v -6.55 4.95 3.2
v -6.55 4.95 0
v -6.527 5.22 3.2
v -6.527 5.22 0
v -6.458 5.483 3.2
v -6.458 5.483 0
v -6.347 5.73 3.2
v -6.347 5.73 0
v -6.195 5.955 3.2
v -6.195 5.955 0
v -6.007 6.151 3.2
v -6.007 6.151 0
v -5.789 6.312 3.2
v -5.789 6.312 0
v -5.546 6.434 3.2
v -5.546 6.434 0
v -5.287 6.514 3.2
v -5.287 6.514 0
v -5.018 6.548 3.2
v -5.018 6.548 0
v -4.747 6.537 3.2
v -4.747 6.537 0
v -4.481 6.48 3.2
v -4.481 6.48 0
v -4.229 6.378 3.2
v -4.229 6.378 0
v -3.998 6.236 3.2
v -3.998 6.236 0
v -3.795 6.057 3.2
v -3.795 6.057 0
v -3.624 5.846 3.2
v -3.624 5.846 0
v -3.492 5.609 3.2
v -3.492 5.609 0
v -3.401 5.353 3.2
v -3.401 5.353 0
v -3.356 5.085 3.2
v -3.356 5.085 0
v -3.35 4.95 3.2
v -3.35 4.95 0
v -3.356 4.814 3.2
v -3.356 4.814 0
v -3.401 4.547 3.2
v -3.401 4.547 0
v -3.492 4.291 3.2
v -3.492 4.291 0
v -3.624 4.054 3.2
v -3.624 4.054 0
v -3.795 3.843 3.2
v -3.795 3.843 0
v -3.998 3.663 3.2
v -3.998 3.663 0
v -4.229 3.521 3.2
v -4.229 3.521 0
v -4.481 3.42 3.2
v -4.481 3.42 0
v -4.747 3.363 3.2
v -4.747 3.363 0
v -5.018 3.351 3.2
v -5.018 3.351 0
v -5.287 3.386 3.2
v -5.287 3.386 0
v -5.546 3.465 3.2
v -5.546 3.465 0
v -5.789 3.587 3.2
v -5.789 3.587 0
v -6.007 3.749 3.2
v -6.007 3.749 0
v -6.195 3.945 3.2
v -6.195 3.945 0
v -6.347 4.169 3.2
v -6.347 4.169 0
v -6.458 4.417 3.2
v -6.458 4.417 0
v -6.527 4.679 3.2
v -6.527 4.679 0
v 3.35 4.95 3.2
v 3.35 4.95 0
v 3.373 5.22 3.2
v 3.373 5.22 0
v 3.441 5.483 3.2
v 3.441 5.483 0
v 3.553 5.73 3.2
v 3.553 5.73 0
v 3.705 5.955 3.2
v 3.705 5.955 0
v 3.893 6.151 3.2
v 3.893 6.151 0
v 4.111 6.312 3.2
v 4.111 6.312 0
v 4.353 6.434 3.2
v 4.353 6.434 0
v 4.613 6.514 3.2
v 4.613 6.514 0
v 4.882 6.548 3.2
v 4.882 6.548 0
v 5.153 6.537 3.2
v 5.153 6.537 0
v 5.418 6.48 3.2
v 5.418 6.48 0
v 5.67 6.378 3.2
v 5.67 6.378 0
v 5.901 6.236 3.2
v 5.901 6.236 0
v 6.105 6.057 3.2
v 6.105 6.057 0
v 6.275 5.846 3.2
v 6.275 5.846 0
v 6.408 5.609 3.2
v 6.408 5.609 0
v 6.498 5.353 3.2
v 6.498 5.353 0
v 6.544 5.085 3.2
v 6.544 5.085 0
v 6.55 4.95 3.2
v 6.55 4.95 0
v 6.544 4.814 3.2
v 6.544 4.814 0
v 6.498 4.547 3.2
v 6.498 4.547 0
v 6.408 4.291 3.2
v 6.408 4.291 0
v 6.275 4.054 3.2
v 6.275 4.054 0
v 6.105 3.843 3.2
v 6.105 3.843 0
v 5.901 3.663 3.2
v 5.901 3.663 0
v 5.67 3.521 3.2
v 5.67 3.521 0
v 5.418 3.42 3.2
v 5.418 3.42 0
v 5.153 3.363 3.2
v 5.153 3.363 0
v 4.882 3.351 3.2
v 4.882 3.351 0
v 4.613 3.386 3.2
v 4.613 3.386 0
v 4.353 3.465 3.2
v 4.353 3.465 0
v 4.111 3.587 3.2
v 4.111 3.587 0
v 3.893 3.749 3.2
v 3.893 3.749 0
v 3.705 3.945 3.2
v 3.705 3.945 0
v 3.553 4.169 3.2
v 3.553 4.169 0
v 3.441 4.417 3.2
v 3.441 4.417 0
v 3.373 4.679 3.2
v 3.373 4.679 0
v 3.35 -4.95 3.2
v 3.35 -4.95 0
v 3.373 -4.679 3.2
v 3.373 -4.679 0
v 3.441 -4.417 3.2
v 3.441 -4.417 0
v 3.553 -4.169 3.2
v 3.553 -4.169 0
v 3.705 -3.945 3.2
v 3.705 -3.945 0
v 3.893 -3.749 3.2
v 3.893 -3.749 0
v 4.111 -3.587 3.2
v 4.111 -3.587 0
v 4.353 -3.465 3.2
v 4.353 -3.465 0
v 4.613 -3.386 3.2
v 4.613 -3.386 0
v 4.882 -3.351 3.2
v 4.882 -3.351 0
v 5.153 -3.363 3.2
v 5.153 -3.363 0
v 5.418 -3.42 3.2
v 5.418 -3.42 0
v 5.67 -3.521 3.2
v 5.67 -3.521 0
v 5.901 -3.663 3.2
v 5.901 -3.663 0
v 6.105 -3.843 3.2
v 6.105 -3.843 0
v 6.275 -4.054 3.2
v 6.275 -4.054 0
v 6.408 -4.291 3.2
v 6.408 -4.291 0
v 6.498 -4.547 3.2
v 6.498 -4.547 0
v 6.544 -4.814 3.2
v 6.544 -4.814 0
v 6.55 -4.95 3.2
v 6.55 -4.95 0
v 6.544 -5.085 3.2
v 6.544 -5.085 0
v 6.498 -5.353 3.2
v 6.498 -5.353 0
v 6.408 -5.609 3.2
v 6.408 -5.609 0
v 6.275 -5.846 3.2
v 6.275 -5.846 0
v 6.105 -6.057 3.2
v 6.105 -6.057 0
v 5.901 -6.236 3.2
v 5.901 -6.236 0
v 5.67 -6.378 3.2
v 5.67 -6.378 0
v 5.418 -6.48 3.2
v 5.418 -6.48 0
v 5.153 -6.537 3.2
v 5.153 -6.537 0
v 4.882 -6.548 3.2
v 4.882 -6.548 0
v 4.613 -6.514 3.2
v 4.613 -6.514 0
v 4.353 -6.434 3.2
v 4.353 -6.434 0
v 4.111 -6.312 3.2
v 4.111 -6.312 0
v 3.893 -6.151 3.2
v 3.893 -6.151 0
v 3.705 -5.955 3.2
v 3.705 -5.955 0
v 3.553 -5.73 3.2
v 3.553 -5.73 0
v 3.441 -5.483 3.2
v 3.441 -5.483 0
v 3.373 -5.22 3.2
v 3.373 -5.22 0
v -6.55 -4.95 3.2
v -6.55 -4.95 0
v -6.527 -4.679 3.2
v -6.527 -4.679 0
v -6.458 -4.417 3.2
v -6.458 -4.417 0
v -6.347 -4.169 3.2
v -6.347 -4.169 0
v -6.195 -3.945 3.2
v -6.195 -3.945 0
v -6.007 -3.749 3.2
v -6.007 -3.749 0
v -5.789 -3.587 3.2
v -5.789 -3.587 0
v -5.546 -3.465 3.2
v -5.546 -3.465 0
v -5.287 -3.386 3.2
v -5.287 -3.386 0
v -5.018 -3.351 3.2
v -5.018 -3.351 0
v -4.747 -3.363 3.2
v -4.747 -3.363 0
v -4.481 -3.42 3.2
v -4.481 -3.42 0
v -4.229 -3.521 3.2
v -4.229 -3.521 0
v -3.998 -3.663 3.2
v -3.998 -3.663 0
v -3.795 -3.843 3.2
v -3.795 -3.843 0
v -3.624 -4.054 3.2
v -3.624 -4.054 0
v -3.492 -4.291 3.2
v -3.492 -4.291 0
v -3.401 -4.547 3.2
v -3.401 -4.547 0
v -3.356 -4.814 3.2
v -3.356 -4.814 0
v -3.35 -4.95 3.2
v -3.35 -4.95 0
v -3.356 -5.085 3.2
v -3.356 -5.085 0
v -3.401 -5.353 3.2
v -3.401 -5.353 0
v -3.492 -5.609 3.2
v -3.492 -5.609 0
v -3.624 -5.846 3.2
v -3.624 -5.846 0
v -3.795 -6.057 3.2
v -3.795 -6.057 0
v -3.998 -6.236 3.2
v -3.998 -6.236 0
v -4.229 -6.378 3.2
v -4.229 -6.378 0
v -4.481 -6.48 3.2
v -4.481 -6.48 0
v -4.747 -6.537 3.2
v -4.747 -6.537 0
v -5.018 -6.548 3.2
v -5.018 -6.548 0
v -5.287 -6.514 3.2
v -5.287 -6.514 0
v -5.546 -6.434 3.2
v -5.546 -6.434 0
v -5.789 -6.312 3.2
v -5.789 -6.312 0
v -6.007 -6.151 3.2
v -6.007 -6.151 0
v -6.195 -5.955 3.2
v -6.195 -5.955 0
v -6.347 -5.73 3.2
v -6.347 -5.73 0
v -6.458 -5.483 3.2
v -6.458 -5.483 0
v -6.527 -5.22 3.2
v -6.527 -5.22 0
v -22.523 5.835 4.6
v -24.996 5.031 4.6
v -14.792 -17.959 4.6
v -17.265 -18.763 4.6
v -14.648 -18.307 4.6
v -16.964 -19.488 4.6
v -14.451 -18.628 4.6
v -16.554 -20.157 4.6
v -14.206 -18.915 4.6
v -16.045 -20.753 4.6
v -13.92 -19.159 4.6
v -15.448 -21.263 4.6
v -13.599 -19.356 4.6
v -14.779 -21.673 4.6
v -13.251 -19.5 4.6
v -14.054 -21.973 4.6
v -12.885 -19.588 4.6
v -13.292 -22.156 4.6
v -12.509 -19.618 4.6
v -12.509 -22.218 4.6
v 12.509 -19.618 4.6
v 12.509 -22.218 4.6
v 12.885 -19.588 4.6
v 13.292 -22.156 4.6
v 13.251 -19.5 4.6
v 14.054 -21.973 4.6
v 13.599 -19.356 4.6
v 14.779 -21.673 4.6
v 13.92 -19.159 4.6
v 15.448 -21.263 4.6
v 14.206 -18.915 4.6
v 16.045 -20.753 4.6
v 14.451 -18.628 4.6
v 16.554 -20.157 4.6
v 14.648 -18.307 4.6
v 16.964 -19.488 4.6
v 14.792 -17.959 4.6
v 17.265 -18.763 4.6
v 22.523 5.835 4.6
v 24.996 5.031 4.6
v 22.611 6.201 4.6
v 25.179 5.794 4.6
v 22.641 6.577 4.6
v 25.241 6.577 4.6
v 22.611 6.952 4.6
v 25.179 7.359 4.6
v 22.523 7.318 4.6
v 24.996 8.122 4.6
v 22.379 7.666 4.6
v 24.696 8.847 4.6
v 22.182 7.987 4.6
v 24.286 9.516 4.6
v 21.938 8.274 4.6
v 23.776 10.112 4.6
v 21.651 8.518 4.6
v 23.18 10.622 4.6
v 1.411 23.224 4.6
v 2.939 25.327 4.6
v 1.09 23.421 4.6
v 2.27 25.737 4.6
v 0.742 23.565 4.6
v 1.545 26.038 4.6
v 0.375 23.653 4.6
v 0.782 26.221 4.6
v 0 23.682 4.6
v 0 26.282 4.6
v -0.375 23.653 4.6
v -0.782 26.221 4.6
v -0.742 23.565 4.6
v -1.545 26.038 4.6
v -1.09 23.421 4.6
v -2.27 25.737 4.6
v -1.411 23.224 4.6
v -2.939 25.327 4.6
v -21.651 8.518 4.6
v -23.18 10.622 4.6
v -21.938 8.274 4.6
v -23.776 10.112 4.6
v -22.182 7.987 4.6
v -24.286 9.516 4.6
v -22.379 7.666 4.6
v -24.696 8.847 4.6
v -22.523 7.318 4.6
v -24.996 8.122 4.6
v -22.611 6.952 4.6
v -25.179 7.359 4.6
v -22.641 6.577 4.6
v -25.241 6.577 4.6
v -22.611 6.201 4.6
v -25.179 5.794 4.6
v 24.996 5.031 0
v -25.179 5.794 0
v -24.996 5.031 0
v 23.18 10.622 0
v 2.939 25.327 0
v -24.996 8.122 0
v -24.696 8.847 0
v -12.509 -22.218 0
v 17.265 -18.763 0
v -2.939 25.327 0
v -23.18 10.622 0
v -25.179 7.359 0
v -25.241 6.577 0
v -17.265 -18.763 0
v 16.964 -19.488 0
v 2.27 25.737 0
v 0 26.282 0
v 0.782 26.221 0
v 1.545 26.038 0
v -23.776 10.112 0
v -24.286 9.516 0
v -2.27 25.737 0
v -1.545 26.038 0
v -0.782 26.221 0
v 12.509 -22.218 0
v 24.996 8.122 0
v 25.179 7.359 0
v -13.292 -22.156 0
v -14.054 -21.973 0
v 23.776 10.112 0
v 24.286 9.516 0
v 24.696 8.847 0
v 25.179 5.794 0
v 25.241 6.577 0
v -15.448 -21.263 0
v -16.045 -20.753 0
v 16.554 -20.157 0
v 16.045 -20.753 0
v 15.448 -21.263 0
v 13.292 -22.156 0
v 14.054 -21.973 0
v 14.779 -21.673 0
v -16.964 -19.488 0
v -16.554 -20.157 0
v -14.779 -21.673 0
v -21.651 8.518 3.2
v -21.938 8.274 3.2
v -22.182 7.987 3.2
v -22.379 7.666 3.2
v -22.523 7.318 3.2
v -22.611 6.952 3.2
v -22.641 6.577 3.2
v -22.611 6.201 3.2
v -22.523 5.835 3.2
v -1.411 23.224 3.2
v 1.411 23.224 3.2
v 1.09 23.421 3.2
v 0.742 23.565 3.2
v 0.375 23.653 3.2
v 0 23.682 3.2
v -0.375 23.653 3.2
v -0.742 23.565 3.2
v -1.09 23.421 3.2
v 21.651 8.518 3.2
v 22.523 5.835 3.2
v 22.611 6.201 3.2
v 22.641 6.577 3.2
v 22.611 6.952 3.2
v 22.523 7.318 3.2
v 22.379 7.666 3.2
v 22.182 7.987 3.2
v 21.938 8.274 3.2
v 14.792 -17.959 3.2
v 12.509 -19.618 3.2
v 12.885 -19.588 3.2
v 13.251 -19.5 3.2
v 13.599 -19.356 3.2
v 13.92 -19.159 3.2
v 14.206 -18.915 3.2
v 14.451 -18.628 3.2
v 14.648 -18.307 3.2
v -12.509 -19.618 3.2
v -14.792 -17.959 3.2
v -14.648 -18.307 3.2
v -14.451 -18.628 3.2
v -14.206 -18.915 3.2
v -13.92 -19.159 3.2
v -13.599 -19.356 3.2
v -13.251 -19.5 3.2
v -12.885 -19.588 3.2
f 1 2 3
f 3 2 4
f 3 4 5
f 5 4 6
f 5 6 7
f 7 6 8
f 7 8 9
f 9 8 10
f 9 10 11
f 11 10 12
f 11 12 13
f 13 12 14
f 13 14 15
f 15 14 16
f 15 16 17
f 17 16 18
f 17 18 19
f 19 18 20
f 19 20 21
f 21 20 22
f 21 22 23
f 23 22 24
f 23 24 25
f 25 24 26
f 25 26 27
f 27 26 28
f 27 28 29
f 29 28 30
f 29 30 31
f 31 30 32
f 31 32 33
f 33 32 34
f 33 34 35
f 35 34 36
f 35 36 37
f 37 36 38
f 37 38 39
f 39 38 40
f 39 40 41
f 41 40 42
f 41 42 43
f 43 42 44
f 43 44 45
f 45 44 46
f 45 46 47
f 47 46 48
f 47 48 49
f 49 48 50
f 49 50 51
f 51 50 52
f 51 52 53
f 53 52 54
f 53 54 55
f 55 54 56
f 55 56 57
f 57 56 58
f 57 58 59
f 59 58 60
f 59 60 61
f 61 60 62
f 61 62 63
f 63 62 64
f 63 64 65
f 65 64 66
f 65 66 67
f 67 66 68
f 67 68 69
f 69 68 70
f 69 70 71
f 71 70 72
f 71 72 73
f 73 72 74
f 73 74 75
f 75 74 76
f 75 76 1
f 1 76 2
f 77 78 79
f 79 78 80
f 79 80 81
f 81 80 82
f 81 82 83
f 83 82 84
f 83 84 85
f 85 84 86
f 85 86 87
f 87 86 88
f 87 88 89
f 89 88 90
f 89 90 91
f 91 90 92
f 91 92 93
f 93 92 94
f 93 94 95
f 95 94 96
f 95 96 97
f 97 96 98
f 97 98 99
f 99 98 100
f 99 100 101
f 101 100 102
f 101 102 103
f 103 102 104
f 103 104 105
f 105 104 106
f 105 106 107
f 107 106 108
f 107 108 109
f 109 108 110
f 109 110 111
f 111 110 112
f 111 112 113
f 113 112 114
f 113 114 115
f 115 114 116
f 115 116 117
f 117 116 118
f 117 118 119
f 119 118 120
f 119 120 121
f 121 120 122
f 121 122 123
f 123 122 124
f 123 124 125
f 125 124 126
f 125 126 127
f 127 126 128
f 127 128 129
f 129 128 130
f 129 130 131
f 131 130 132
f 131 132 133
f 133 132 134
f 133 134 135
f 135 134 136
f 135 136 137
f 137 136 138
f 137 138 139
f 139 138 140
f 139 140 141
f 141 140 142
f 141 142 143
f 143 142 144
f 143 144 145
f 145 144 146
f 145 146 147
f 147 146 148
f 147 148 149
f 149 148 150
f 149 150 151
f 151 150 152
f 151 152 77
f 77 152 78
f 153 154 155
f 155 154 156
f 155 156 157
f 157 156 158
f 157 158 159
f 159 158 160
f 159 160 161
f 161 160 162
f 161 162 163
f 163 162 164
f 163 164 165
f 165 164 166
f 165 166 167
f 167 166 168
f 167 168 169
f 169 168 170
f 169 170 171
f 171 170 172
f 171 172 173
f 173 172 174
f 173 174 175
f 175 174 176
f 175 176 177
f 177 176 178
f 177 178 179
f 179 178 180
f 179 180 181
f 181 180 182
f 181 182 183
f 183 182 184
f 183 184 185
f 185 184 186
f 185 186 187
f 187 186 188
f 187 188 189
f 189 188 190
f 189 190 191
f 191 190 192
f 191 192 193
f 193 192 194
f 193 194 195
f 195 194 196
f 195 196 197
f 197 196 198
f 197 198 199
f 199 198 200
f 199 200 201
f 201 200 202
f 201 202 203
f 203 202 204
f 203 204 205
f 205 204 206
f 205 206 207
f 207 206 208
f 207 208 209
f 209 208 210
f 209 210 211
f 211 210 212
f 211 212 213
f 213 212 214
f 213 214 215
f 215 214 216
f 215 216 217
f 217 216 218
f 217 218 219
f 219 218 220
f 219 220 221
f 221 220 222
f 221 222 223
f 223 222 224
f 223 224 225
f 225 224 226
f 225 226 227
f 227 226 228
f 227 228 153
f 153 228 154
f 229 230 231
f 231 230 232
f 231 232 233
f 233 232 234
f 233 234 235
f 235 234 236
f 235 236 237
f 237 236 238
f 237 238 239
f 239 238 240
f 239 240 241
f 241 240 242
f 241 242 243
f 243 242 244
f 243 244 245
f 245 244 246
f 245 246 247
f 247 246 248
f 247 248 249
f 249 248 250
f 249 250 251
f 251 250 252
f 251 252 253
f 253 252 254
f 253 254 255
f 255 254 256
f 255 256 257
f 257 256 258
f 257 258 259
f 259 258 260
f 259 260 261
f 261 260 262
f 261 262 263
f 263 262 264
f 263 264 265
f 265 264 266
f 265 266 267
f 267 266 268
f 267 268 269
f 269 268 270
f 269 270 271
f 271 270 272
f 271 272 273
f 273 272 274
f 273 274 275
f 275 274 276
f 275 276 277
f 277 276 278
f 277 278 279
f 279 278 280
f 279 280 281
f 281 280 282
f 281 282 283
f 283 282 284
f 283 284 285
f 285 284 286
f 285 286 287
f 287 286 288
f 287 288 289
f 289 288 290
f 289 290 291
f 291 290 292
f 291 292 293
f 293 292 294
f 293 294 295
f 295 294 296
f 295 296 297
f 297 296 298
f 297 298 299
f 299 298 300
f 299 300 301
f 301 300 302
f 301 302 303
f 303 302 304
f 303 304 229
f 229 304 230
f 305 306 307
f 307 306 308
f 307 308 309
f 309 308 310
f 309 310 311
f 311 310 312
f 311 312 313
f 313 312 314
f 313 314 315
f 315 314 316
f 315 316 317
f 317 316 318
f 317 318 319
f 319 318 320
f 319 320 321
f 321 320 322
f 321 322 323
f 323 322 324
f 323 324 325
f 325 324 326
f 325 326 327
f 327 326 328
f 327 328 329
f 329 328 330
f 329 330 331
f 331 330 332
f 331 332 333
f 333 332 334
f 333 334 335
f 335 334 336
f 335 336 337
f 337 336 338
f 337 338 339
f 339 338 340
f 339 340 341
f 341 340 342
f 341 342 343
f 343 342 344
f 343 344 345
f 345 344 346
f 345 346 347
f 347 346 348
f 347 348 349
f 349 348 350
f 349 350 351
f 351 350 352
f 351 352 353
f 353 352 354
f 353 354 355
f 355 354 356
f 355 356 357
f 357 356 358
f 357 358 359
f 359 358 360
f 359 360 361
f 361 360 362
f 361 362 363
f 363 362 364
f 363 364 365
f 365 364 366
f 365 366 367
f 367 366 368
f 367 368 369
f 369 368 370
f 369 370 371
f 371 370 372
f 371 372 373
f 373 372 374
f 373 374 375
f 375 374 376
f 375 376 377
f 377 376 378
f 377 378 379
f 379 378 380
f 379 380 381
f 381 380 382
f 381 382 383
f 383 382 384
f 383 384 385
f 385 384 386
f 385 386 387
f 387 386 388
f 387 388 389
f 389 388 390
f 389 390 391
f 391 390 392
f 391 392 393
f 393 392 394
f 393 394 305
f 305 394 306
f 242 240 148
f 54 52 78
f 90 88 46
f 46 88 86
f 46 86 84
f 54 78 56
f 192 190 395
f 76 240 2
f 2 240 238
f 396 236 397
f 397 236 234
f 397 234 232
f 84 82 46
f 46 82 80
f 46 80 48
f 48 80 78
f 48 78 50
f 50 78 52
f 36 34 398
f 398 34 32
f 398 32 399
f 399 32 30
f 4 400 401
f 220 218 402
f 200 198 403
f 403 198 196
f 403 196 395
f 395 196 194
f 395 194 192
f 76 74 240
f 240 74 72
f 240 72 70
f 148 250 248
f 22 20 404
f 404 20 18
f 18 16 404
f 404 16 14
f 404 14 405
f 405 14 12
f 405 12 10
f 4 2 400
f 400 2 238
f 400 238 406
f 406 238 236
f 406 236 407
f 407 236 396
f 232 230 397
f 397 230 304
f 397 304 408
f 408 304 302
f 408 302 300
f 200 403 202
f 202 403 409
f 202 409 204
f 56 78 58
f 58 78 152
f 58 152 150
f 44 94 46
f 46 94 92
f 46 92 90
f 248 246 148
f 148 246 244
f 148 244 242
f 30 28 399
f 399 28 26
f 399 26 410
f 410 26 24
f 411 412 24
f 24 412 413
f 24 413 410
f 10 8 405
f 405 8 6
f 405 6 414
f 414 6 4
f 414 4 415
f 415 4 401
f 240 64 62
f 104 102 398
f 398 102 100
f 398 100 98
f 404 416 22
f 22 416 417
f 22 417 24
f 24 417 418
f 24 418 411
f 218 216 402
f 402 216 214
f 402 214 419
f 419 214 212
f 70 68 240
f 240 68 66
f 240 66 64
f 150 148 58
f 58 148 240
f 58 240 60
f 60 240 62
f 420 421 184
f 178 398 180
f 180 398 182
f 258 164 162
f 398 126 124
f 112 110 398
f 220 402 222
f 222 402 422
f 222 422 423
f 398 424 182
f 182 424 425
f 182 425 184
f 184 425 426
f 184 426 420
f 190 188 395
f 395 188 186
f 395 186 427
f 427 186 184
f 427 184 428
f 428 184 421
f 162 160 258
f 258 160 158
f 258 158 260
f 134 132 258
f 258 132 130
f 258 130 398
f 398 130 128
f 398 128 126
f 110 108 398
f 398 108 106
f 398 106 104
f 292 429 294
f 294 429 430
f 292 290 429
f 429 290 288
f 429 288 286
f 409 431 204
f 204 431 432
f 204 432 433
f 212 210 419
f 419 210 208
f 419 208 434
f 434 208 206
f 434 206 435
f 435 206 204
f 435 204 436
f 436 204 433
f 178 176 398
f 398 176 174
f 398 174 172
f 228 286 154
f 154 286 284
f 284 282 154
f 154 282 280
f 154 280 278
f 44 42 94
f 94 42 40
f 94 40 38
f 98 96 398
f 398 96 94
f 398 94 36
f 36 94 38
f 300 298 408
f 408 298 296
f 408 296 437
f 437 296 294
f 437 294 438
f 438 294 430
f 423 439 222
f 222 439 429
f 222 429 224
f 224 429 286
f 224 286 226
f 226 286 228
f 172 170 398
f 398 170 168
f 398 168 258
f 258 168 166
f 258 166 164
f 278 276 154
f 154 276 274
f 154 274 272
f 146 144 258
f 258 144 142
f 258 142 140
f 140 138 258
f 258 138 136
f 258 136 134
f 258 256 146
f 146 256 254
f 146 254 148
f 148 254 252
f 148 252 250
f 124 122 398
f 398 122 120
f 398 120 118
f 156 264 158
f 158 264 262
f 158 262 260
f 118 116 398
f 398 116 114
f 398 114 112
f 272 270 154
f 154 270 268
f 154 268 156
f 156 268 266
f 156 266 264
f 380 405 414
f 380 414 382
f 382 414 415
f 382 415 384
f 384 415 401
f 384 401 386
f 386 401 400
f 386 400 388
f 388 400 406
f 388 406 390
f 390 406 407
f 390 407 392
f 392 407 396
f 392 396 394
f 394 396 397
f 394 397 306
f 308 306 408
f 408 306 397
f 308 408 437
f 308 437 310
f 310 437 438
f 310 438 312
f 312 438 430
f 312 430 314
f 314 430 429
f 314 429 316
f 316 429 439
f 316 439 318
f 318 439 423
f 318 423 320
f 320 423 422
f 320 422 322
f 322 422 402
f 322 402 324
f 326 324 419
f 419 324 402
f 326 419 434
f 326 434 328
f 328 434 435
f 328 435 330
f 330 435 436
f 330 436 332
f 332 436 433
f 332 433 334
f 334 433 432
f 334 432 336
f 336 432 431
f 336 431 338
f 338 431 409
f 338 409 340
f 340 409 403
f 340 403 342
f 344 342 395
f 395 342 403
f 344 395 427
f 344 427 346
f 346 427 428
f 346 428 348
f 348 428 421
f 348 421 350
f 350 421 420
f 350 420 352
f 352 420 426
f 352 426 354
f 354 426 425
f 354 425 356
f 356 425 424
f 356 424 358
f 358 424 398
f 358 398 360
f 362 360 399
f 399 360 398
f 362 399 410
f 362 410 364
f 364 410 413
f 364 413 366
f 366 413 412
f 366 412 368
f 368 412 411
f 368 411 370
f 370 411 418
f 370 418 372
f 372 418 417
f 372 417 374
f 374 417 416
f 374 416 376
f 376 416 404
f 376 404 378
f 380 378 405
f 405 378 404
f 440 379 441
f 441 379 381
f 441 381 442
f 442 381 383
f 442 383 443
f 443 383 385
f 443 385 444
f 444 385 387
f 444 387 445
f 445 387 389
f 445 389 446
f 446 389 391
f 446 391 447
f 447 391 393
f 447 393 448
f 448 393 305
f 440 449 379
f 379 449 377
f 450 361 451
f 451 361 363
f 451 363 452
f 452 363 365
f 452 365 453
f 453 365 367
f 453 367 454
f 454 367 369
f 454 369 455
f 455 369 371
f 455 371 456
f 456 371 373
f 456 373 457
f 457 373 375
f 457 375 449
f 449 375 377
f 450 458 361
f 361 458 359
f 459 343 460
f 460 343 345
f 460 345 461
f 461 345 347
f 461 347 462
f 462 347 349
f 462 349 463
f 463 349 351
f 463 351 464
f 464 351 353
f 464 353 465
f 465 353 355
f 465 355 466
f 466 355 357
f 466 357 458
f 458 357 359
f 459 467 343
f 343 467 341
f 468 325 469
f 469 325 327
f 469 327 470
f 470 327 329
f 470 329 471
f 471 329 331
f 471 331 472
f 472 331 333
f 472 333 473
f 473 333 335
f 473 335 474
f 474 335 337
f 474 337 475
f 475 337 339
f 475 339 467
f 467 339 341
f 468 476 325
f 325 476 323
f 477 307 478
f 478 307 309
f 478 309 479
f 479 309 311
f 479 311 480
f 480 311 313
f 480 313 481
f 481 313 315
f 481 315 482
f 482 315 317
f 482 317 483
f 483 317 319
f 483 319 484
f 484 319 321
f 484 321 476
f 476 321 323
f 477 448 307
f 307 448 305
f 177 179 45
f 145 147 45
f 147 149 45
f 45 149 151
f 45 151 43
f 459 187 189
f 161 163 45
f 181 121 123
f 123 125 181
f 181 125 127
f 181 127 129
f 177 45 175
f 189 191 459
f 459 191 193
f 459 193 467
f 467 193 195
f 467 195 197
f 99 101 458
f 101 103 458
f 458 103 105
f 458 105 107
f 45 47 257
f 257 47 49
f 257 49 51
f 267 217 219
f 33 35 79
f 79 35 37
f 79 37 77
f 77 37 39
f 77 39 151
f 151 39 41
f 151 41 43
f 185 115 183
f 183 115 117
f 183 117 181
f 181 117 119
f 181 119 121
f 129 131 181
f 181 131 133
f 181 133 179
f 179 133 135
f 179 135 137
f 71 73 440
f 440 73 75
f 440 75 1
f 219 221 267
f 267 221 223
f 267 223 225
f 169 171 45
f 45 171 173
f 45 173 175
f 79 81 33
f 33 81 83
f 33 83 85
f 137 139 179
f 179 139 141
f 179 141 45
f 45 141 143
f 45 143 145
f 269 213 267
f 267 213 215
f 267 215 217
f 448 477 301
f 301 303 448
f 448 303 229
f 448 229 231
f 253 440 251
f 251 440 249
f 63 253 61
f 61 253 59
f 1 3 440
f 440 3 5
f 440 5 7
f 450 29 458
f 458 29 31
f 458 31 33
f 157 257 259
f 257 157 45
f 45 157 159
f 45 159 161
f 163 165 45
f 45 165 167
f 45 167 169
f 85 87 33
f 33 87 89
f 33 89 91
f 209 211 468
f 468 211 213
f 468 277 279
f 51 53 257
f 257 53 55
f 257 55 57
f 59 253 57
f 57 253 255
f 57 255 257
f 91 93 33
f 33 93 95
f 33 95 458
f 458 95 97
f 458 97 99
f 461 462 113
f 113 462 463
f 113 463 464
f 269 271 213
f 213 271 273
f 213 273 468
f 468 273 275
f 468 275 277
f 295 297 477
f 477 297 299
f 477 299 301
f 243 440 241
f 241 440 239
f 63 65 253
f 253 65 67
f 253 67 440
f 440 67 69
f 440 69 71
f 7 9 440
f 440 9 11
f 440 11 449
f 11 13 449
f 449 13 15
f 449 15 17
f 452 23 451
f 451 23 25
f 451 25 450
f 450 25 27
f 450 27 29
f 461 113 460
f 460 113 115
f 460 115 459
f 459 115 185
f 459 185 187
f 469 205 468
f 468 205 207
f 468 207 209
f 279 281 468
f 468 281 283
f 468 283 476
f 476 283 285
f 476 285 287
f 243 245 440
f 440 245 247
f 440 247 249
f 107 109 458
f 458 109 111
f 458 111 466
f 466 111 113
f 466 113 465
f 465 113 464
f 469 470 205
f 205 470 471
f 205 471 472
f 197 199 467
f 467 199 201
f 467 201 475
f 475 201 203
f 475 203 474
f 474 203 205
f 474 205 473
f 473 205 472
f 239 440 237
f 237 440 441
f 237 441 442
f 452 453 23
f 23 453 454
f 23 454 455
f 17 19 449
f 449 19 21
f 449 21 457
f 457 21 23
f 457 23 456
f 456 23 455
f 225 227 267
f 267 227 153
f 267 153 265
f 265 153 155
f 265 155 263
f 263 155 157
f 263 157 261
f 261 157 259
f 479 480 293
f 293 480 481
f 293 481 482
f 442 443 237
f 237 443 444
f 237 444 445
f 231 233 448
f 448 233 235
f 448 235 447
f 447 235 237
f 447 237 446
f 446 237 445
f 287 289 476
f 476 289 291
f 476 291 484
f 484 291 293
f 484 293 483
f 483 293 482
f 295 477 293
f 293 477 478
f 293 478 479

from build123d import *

# Parameters (mm, degrees)
SKETCH1_R           = 1.6
BOSS_EXTRUDE1_DEPTH = 4.6
CUT_EXTRUDE2_DEPTH  = 1.4


with BuildPart() as part:
    # Sketch1 → Boss-Extrude1 (new body)
    with BuildSketch(Plane.XY):
        with BuildLine():
            Line((-2.938926261, 25.327361545), (-23.179574078, 10.621670112))
            ThreePointArc((-23.179574078, 10.621670112), (-24.995930398, 8.121670112), (-24.995930398, 5.031500168))
            Line((-24.995930398, 5.031500168), (-17.264690886, -18.762808399))
            ThreePointArc((-17.264690886, -18.762808399), (-15.448334566, -21.262808399), (-12.509408305, -22.217723427))
            Line((-12.509408305, -22.217723427), (12.509408305, -22.217723427))
            ThreePointArc((12.509408305, -22.217723427), (15.448334566, -21.262808399), (17.264690886, -18.762808399))
            Line((17.264690886, -18.762808399), (24.995930398, 5.031500168))
            ThreePointArc((24.995930398, 5.031500168), (24.995930398, 8.121670112), (23.179574078, 10.621670112))
            Line((23.179574078, 10.621670112), (2.938926261, 25.327361545))
            ThreePointArc((2.938926261, 25.327361545), (0, 26.282276573), (-2.938926261, 25.327361545))
        make_face()
        with Locations((-4.949747468, 4.949747468)):
            Circle(SKETCH1_R, mode=Mode.SUBTRACT)
        with Locations((4.949747468, 4.949747468)):
            Circle(SKETCH1_R, mode=Mode.SUBTRACT)
        with Locations((4.949747468, -4.949747468)):
            Circle(SKETCH1_R, mode=Mode.SUBTRACT)
        with Locations((-4.949747468, -4.949747468)):
            Circle(SKETCH1_R, mode=Mode.SUBTRACT)
    extrude(amount=BOSS_EXTRUDE1_DEPTH)

    # Sketch3 → Cut-Extrude2 (cut)
    with BuildSketch(Plane.XY.offset(4.6)):
        with BuildLine():
            Line((-22.523183456, 5.834944354), (-14.791943944, -17.959364213))
            ThreePointArc((-14.791943944, -17.959364213), (-13.92009291, -19.159364213), (-12.509408305, -19.617723427))
            Line((-12.509408305, -19.617723427), (12.509408305, -19.617723427))
            ThreePointArc((12.509408305, -19.617723427), (13.92009291, -19.159364213), (14.791943944, -17.959364213))
            Line((14.791943944, -17.959364213), (22.523183456, 5.834944354))
            ThreePointArc((22.523183456, 5.834944354), (22.523183456, 7.318225927), (21.651332422, 8.518225927))
            Line((21.651332422, 8.518225927), (1.410684606, 23.22391736))
            ThreePointArc((1.410684606, 23.22391736), (0, 23.682276573), (-1.410684606, 23.22391736))
            Line((-1.410684606, 23.22391736), (-21.651332422, 8.518225927))
            ThreePointArc((-21.651332422, 8.518225927), (-22.523183456, 7.318225927), (-22.523183456, 5.834944354))
        make_face()
    extrude(amount=-CUT_EXTRUDE2_DEPTH, mode=Mode.SUBTRACT)


solid = part.part
